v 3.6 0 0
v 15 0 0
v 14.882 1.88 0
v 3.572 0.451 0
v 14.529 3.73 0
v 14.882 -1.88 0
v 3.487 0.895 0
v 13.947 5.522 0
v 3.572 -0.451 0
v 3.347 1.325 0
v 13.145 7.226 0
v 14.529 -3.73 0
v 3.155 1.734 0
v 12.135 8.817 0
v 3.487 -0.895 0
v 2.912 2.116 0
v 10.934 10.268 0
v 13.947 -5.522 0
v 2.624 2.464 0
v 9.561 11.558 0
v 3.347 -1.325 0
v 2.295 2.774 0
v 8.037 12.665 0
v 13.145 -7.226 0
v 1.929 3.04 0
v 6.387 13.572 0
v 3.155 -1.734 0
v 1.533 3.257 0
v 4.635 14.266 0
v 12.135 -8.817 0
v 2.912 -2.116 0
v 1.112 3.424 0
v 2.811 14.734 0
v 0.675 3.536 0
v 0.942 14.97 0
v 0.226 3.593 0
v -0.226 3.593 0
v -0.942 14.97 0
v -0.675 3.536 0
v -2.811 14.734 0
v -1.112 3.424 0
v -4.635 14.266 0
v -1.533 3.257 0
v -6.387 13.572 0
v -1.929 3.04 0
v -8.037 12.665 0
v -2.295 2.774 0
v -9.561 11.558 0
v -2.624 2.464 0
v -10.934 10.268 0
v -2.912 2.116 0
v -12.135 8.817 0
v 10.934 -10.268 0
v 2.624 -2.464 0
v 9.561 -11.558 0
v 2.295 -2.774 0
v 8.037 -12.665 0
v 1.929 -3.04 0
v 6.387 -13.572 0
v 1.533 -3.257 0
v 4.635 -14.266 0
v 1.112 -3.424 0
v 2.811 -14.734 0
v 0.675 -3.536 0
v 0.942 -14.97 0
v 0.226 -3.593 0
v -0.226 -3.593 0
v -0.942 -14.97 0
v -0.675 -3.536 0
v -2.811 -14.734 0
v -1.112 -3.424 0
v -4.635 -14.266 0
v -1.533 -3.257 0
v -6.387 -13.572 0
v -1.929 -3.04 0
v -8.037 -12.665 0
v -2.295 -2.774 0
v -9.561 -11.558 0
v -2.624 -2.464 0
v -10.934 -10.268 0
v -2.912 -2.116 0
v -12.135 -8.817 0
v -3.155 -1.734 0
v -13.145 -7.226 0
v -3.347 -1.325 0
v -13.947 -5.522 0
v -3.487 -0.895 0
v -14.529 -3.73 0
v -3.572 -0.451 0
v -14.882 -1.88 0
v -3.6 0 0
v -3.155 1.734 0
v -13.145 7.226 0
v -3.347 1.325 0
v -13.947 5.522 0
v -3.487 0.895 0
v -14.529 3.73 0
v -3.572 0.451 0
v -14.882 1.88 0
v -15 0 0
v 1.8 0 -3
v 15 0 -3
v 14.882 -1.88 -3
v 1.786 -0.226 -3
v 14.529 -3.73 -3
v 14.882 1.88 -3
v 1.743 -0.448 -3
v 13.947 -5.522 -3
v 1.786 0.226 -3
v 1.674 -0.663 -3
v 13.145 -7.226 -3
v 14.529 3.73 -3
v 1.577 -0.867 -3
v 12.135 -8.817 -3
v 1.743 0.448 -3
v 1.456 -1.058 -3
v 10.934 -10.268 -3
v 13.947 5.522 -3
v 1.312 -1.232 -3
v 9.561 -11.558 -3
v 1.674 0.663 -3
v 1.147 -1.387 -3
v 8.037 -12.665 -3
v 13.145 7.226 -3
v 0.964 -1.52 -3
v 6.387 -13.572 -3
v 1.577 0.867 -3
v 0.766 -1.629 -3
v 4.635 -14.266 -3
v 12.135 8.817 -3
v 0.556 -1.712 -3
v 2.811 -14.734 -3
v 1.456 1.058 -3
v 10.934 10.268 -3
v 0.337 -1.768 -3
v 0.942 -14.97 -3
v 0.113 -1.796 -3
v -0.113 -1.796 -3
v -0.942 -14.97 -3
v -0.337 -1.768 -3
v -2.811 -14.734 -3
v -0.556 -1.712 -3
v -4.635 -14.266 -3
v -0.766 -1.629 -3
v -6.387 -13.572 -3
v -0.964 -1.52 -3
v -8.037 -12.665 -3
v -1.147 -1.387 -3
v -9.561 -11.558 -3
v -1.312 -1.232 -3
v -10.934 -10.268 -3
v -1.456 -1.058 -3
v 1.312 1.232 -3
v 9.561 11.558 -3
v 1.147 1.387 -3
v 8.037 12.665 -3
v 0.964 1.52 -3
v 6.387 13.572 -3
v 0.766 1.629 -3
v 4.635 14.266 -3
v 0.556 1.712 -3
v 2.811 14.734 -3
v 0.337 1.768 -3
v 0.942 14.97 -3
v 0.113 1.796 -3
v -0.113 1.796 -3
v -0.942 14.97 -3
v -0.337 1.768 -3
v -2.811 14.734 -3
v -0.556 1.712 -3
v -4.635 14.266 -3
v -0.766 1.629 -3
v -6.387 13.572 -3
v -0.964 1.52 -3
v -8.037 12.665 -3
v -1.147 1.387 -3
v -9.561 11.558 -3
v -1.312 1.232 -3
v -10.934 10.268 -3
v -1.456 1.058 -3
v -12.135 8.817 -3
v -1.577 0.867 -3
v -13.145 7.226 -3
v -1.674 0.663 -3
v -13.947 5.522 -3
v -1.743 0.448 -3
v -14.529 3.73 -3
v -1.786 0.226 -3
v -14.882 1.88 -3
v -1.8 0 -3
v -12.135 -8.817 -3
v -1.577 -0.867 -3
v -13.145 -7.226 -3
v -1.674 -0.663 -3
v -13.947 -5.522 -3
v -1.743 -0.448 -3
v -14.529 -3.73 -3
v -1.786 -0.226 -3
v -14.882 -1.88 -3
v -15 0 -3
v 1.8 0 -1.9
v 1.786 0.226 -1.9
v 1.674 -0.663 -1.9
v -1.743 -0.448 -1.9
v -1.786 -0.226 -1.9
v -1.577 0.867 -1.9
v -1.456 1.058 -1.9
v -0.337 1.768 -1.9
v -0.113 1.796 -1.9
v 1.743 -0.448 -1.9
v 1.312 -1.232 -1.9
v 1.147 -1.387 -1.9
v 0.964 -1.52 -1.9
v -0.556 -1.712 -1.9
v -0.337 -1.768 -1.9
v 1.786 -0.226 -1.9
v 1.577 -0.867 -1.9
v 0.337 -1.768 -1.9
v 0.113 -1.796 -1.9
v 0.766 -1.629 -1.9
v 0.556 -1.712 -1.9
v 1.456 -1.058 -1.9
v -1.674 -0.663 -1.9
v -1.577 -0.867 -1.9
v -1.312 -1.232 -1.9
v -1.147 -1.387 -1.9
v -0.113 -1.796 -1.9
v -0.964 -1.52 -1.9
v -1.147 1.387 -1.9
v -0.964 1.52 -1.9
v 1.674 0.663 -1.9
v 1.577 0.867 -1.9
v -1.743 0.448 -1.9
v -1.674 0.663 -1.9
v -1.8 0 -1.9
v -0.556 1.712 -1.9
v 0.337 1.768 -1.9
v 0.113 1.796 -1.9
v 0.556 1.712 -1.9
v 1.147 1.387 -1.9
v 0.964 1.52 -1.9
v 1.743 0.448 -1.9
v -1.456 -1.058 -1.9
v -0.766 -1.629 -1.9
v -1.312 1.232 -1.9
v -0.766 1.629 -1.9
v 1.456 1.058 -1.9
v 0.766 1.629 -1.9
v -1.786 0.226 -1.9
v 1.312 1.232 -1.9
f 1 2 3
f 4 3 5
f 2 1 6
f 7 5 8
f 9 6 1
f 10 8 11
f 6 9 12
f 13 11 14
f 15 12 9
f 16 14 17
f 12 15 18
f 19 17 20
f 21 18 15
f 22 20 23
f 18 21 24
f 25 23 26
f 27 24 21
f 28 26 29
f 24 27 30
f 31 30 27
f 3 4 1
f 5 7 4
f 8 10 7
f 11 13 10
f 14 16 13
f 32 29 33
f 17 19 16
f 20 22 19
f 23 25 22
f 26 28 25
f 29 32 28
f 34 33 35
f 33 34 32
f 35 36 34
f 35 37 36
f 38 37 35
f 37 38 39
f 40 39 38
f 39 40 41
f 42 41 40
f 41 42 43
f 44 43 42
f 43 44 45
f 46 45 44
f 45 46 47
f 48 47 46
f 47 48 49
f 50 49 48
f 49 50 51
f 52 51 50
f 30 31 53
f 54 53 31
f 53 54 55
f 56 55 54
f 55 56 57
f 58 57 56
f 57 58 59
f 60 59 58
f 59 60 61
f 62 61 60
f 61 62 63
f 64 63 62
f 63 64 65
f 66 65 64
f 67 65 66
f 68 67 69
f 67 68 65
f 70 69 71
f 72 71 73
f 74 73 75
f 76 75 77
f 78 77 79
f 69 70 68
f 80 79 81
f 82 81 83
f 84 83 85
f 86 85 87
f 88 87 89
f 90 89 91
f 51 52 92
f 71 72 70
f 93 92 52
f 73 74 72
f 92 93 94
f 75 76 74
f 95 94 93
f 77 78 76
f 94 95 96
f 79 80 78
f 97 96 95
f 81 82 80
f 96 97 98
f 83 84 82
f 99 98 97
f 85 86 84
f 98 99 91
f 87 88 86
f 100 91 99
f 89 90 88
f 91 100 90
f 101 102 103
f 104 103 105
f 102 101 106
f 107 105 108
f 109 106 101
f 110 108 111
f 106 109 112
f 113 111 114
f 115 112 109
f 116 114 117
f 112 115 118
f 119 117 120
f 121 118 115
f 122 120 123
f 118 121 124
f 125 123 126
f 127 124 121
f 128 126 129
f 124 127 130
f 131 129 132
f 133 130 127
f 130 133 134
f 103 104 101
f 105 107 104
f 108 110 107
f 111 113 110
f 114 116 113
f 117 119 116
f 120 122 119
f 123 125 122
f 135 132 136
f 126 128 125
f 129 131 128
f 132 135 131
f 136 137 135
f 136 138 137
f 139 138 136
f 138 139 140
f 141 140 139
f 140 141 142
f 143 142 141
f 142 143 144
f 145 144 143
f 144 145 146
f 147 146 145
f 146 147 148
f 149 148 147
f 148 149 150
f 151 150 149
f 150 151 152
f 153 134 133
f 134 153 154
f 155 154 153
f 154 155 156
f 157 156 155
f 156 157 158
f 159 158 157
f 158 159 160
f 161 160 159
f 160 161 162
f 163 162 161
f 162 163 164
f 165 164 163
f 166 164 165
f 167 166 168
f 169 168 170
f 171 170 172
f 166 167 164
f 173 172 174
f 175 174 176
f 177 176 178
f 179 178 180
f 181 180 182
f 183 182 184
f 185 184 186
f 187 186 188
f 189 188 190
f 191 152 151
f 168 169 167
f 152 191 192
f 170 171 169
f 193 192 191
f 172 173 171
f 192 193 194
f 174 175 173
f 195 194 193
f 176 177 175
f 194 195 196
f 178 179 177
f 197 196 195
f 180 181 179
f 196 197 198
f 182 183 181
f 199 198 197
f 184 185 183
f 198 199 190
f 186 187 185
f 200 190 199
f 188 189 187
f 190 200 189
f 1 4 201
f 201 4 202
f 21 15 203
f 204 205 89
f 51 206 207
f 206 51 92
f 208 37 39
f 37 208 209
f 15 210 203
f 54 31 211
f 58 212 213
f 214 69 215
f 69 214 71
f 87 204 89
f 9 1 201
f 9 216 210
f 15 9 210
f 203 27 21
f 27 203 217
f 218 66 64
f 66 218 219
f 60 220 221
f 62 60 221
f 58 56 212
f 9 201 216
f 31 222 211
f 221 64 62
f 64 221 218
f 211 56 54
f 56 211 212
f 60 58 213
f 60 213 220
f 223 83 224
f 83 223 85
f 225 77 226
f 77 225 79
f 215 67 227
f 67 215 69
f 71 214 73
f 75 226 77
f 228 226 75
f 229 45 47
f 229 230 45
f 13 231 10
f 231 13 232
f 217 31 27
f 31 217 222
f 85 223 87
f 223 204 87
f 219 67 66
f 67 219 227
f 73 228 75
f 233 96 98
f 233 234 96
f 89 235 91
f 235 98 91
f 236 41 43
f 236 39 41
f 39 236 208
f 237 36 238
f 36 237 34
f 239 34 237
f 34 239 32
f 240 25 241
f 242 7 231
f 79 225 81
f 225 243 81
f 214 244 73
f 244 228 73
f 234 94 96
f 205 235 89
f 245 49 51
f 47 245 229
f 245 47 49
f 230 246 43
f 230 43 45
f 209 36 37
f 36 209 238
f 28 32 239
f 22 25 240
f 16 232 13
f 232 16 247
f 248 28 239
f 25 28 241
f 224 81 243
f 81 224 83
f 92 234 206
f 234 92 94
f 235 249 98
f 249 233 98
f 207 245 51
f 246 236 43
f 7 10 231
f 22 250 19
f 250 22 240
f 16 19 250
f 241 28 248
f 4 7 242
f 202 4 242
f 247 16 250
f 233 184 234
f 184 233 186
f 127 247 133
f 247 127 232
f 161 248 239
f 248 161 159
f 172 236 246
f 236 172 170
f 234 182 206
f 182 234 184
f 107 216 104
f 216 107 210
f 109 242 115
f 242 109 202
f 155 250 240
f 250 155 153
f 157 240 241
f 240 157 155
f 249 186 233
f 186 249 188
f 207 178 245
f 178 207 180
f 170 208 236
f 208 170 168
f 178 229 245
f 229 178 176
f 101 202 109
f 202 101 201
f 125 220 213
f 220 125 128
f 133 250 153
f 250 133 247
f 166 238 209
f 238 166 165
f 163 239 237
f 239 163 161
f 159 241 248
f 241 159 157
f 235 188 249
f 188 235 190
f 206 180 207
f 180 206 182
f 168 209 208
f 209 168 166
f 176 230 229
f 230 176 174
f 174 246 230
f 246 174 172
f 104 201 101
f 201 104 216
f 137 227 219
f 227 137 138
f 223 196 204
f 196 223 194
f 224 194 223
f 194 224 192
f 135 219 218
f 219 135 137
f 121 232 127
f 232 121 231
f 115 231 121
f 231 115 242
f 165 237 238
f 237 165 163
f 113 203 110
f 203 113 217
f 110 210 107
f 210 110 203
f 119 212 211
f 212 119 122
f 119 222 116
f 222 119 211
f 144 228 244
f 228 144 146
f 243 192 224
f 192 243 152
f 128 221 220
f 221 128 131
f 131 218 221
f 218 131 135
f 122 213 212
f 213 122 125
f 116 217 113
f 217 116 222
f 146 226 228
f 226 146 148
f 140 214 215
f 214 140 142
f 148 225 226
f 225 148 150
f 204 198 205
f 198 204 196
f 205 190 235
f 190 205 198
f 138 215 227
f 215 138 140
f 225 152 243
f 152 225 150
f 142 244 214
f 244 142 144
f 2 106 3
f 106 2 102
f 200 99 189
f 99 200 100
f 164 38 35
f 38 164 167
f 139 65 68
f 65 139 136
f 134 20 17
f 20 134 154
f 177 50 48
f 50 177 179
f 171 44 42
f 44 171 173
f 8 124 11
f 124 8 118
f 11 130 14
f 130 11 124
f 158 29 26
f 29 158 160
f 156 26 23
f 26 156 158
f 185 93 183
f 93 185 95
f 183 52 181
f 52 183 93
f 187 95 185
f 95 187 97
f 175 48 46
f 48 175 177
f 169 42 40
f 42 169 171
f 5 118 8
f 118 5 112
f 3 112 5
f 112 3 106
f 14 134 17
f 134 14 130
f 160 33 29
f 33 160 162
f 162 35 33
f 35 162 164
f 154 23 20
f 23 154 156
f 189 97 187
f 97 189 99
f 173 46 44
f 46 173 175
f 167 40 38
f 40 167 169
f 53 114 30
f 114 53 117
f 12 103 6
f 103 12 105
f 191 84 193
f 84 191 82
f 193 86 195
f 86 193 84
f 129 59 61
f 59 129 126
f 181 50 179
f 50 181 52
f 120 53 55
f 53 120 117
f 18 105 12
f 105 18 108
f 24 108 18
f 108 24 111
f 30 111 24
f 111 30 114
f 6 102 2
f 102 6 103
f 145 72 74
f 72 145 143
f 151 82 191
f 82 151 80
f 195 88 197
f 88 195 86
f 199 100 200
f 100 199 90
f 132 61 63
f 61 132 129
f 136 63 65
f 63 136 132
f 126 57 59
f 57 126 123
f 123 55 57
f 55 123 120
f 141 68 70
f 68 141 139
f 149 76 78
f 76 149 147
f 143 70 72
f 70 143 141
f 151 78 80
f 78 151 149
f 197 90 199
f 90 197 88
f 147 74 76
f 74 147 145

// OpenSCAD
$fn = 50;


difference() {
	union() {
		translate(v = [0, 0, -3.0000000000]) {
			cylinder(h = 3, r = 15.0000000000);
		}
	}
	union() {
		translate(v = [0, 0, 0]) {
			rotate(a = [0, 0, 0]) {
				difference() {
					union() {
						translate(v = [0, 0, -3.0000000000]) {
							cylinder(h = 3, r = 1.5000000000);
						}
						translate(v = [0, 0, -1.9000000000]) {
							cylinder(h = 1.9000000000, r1 = 1.8000000000, r2 = 3.6000000000);
						}
						translate(v = [0, 0, -3.0000000000]) {
							cylinder(h = 3, r = 1.8000000000);
						}
						translate(v = [0, 0, -3.0000000000]) {
							cylinder(h = 3, r = 1.5000000000);
						}
					}
					union();
				}
			}
		}
	}
}
